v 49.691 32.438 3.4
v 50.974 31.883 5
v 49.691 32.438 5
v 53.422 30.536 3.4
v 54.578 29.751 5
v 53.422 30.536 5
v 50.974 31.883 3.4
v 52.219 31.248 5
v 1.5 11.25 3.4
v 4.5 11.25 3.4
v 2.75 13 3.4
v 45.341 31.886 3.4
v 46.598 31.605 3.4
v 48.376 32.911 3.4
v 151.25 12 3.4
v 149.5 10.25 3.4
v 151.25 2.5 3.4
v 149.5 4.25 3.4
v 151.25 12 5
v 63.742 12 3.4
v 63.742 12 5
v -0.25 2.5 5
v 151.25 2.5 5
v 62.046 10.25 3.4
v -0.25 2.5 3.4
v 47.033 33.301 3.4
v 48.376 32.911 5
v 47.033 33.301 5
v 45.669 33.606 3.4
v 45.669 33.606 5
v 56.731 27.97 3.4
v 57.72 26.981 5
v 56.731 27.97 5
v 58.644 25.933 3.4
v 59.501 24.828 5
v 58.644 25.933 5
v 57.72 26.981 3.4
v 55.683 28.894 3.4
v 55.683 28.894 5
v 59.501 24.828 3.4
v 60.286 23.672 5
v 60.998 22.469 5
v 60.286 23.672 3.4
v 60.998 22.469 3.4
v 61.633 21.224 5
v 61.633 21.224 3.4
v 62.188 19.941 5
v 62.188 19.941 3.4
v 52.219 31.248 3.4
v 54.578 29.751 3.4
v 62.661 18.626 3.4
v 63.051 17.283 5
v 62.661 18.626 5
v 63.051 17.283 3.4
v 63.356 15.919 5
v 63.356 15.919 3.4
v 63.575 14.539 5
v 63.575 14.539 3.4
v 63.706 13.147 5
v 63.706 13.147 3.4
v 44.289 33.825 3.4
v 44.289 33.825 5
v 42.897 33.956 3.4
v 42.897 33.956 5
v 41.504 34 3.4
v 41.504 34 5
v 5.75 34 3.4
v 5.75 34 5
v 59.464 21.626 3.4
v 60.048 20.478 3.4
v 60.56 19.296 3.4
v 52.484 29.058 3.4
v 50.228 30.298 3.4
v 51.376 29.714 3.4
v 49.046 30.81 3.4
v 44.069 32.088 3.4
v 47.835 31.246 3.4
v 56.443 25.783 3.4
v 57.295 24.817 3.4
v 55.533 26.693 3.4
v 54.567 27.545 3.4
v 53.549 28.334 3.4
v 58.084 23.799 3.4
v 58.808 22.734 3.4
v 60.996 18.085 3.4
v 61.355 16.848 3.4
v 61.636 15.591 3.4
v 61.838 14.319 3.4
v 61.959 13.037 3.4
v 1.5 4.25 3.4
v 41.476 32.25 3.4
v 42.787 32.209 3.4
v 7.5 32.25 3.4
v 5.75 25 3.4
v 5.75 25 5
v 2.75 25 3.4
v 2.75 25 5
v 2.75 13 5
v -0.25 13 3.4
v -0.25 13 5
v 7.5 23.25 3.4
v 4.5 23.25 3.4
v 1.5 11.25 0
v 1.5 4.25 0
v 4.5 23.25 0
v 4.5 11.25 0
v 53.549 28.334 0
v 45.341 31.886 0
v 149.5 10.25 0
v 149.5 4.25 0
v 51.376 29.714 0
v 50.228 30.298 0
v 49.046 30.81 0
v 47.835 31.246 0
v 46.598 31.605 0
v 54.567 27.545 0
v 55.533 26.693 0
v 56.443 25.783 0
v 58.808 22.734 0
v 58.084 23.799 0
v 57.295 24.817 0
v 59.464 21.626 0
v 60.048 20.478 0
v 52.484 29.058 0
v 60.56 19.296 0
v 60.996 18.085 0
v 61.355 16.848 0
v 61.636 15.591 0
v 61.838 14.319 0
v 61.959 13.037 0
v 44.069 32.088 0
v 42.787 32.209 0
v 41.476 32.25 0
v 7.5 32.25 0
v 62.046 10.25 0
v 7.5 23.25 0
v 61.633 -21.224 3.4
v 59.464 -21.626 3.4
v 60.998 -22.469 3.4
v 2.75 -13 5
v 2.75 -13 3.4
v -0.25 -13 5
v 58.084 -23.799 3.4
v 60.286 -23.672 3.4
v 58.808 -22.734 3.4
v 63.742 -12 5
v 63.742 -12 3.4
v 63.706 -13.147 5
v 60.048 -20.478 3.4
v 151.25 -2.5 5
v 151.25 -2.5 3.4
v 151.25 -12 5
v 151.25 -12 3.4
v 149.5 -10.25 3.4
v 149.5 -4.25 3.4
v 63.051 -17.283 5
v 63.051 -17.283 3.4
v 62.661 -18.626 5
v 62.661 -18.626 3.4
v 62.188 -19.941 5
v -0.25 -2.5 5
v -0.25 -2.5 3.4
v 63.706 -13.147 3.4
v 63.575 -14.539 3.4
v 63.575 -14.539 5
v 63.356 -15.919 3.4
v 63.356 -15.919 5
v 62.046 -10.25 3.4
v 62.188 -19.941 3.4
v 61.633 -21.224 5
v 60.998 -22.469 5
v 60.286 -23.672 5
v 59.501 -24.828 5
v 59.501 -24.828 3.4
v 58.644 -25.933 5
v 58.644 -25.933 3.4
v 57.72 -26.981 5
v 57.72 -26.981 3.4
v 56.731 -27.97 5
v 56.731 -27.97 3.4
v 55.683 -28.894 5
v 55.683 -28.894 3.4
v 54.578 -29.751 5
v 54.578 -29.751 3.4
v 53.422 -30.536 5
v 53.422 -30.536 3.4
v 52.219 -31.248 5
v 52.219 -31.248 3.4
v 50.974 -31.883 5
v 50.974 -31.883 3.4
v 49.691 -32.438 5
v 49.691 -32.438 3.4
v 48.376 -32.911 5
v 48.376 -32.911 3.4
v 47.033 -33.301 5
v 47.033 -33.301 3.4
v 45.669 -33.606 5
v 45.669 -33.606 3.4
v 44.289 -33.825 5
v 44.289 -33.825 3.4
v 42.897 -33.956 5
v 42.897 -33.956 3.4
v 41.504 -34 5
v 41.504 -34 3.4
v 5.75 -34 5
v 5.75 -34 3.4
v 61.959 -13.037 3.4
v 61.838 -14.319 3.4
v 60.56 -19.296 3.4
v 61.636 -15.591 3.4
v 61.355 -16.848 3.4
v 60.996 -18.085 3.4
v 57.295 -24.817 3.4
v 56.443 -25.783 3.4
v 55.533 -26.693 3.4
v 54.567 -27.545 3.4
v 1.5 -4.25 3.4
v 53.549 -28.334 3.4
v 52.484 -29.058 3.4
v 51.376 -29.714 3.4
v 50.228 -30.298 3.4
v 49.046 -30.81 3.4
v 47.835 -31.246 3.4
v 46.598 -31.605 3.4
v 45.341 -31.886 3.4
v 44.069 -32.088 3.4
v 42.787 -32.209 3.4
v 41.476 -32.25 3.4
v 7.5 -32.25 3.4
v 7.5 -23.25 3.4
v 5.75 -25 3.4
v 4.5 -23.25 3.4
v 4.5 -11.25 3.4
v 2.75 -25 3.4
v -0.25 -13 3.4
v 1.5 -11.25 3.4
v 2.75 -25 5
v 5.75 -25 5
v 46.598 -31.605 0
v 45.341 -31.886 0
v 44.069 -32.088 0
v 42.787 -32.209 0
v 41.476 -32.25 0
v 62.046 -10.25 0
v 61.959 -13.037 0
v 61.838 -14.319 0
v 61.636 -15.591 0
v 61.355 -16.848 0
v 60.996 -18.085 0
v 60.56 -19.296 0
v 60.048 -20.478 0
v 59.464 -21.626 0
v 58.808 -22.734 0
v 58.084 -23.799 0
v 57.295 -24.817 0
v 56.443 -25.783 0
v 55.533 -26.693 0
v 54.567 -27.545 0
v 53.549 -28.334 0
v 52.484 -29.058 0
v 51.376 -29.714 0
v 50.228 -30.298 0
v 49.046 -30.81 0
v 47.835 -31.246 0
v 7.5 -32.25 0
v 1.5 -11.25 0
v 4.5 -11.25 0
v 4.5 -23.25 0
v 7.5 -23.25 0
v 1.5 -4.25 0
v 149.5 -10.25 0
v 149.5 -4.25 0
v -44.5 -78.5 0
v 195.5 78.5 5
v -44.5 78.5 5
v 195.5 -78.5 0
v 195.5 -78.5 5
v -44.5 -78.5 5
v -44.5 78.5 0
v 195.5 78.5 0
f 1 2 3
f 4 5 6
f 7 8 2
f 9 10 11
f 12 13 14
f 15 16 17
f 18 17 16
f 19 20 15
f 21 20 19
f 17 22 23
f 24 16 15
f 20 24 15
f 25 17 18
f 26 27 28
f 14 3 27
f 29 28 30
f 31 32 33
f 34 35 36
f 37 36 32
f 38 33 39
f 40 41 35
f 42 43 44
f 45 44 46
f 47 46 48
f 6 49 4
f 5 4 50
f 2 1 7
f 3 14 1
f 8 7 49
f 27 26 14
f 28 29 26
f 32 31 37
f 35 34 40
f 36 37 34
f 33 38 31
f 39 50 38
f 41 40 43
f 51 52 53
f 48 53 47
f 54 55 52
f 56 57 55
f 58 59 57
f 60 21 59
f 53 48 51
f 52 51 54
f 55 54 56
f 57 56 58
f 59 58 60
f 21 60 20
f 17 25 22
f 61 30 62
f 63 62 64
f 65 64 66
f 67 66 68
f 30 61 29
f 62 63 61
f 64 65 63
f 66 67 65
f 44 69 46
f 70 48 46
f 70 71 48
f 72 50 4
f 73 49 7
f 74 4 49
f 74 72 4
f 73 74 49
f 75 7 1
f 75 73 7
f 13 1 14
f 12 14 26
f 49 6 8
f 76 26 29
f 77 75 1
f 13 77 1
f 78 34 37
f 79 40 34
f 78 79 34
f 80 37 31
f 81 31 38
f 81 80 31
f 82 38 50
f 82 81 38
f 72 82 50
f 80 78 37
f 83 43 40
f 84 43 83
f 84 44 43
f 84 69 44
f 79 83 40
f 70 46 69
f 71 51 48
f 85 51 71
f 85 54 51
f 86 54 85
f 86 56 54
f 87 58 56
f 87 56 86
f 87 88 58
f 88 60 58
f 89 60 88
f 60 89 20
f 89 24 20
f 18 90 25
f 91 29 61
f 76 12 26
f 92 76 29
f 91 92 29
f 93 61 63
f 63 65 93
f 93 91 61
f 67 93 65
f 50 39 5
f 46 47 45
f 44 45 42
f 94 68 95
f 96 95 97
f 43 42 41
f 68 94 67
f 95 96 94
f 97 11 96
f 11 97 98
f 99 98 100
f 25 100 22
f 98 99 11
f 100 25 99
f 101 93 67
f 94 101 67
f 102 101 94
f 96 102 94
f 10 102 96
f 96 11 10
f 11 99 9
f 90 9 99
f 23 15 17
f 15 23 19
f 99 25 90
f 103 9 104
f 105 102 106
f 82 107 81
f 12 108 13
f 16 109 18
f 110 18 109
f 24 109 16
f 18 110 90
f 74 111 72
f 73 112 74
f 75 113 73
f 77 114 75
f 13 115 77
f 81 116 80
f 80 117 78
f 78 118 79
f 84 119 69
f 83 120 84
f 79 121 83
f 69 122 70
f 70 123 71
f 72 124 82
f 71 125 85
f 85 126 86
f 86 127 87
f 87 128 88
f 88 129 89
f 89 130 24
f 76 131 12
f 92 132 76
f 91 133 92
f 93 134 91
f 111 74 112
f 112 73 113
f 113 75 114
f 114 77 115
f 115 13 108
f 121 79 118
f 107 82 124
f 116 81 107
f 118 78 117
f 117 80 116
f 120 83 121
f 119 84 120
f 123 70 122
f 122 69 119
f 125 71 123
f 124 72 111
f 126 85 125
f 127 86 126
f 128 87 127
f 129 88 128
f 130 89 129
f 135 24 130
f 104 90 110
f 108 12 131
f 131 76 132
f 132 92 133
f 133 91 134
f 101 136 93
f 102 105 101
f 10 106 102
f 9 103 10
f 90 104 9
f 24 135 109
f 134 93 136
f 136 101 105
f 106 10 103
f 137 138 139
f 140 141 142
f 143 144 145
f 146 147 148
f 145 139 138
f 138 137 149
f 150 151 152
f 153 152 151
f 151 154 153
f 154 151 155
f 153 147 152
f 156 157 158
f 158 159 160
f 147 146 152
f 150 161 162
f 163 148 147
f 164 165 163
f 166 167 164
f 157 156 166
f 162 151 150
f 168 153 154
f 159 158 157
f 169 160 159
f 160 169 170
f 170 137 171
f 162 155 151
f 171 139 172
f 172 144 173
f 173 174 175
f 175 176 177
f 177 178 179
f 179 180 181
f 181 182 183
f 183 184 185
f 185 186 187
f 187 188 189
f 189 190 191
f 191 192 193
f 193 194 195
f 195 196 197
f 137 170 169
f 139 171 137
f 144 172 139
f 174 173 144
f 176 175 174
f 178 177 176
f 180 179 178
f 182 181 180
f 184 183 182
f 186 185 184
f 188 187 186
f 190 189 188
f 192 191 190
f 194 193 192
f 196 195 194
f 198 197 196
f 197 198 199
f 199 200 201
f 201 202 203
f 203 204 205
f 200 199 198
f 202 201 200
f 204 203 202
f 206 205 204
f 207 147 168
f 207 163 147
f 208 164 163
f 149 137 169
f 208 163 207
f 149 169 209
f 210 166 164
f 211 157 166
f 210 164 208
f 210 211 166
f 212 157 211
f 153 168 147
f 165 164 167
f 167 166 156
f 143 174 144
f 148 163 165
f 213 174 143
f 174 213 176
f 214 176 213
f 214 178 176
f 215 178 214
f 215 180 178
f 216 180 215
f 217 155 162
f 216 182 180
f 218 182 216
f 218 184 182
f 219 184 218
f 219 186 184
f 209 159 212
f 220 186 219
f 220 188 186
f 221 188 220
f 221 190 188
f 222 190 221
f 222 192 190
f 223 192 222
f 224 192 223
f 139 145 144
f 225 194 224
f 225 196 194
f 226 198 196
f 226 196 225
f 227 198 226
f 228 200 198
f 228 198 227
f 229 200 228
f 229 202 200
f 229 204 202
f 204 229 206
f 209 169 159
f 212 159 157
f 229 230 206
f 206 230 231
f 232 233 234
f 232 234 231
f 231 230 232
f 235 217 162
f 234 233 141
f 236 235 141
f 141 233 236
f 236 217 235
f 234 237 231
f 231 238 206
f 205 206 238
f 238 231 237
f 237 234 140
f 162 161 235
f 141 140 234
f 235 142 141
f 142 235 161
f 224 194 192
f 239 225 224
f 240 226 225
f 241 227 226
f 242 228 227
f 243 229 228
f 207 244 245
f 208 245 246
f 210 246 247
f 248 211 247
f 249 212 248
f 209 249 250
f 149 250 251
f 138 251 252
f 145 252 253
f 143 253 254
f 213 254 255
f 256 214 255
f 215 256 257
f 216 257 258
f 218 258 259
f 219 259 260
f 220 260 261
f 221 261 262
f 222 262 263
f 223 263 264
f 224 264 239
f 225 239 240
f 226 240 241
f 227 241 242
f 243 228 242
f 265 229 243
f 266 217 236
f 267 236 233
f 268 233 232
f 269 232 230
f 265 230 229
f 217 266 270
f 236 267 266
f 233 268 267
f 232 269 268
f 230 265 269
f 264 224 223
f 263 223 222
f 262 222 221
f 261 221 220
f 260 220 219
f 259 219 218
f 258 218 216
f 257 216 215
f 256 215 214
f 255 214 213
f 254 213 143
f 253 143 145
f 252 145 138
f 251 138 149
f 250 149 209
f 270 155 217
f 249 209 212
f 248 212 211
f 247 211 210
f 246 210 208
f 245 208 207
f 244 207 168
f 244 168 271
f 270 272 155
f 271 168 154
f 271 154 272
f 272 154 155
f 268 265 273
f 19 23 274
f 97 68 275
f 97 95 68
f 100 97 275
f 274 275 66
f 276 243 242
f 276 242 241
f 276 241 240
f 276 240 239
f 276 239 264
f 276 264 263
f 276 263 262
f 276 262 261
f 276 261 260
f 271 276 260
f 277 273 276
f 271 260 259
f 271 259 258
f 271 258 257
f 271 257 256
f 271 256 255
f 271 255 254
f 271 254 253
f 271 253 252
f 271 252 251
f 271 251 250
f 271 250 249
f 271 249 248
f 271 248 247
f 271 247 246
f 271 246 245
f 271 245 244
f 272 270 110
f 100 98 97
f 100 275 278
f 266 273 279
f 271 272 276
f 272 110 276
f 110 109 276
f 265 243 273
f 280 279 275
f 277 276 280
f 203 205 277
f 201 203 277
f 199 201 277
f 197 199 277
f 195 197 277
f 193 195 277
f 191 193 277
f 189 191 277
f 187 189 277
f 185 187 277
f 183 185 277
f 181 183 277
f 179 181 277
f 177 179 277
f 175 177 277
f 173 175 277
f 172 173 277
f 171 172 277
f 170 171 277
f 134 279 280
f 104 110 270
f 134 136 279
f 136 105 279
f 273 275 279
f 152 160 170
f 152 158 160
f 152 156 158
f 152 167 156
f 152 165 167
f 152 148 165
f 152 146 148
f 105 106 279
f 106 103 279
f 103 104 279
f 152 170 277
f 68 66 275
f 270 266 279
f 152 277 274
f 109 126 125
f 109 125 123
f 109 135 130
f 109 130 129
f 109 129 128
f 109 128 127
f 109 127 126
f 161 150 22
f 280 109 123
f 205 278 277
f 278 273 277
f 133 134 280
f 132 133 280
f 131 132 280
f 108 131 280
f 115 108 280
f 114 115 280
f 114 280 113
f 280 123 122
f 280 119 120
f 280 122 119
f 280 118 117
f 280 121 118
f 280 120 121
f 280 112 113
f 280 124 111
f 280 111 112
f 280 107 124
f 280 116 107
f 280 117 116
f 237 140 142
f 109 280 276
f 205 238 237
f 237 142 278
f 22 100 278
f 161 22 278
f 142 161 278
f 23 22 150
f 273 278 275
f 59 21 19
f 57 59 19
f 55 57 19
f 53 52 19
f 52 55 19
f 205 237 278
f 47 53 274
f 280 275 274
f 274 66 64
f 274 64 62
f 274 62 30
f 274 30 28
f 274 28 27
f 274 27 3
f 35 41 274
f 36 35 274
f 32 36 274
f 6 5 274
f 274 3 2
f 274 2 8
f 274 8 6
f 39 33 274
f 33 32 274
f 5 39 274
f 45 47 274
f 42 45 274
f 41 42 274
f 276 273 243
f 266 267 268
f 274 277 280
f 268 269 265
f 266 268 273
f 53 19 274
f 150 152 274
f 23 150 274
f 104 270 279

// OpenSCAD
// file: pcb.scad
$fn = 100;
pcb_w = 151;
pcb_l = 31;
pcb_h = 1.6;

rgb_x = 34.8525;
rgb_y = 4.5;
rgb_z = 1;
rgb_l = 9;
rgb_w = 10;
rgb_h = 2;

module microphone() {
    translate([20.0, pcb_l-3.0, 0.8])
        rotate([0,90,180])
            cylinder(27, 5.5, 5.5, false);
}

module switch() {
    translate([-4, 10.5, pcb_h-0.1])
        cube([13, 10.5, 5], false);
}

module usb() {
    translate([-4, 0.6, pcb_h-0.5])
        cube([13, 8.75, 3.5], false);
}

module led(x) {
    translate([rgb_x+x, rgb_y, rgb_z]) {
        cylinder(3, 2, 2, true);
    }
}

module holes(x) {
    translate([10.3333, pcb_l-6, -1]) {
        cylinder(4, 1.2, 1.2);
    }
    translate([37.8333, pcb_l-6, -1]) {
        cylinder(4, 1.2, 1.2);
    }
}

module pcb(draw_holes=true) {
    //translate([0, 0, -pcb_h/2])
    difference() {
        linear_extrude(height=pcb_h) {
            // Add 0.25mm to all ends to better align with
            // 3d printer tolerance
            offset(delta=+0.25) {
                polygon(points=[[0,0], [0, 10], [3, 10], [3, 22], [6,22], [6, pcb_l], [10, pcb_l],
                [41.5, pcb_l], [41.5, rgb_l], [pcb_w, rgb_l],
                [pcb_w, 0]
                ]);
                translate([41.5, 9, 0]) {
                    intersection() {
                        square(22);
                        circle(r=22);
                    }
                }
            }
        }
        if (draw_holes) {
            led(0);
            led(10);
            led(20);
            led(30);
            led(40);
            led(50);
            led(60);
            led(70);
            led(80);
            led(90);
            led(100);
            led(110);
        }
    }
}

rotate([90, 0, 90]) {
    union() {
        //microphone();
        //switch();
        //usb();
        //pcb(true);
    }
}
// main file
include <pcb.scad>;

margin_w = 30;
margin_l = 30;

stencil_w = 210;
stencil_l = 127;
stencil_h = 0.0;

board_w = stencil_w + margin_w;
board_l = stencil_l + margin_l;
board_h = 5.0;

board_x = pcb_w/2 - board_w/2;
board_y = -board_l/2;
board_z = 0;

stencil_x = -margin_w;
stencil_y = -(board_l/2) + margin_l/2;
stencil_z = board_h - stencil_h;

module negative_pcb(x, y, z) {
    translate([x, y, board_h-stencil_h-pcb_h]) //pcb(false);
        linear_extrude(height=board_h+3)
            projection(cut=true)
                pcb(false);
    translate([x, y, -0.01])
        linear_extrude(height=board_h+3)
            offset(delta=-1.75)
                projection(cut=true)
                    pcb(false);
}

module board() {
    difference() {
        translate([board_x, board_y, board_z])
            cube([board_w, board_l, board_h]);
        negative_pcb(0, 2.75, 0);
        mirror([0,1,0])
            negative_pcb(0, 2.75, 0);

        if (stencil_h > 0) {
            // Trim the stencil area
            translate([stencil_x, stencil_y, stencil_z])
                cube([stencil_w, stencil_l, stencil_h+4]);

            // Create a tab for lifting the stencil
            translate([stencil_w/2-pcb_w/2, stencil_y-margin_l, stencil_z])
               cube([stencil_w/4, stencil_l+margin_l*2, stencil_h+4]);
        }
    }
}

board();
